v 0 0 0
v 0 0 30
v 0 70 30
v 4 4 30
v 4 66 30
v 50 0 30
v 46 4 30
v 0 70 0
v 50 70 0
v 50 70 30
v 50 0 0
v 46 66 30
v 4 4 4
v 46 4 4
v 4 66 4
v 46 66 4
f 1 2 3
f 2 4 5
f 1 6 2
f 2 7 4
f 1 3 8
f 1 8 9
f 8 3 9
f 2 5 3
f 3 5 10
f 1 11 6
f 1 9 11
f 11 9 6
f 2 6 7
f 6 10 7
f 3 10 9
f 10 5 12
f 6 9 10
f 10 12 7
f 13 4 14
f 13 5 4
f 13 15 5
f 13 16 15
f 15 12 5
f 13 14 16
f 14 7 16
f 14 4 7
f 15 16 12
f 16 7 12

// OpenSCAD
// file: params.scad
// Open-bottom box. All dimensions in mm, outside.
length = 50;  // x
width  = 70;  // y
height = 30;  // z, top included
wall   = 4;   // side walls
top    = 4;   // closed face
// main file
// Box open on one side. Prints upside down: closed top on the bed, open side up (no 62 × 42 mm roof to bridge).
include <params.scad>

difference() {
    cube([length, width, height]);
    translate([wall, wall, top]) cube([length - 2 * wall, width - 2 * wall, height]);
}
